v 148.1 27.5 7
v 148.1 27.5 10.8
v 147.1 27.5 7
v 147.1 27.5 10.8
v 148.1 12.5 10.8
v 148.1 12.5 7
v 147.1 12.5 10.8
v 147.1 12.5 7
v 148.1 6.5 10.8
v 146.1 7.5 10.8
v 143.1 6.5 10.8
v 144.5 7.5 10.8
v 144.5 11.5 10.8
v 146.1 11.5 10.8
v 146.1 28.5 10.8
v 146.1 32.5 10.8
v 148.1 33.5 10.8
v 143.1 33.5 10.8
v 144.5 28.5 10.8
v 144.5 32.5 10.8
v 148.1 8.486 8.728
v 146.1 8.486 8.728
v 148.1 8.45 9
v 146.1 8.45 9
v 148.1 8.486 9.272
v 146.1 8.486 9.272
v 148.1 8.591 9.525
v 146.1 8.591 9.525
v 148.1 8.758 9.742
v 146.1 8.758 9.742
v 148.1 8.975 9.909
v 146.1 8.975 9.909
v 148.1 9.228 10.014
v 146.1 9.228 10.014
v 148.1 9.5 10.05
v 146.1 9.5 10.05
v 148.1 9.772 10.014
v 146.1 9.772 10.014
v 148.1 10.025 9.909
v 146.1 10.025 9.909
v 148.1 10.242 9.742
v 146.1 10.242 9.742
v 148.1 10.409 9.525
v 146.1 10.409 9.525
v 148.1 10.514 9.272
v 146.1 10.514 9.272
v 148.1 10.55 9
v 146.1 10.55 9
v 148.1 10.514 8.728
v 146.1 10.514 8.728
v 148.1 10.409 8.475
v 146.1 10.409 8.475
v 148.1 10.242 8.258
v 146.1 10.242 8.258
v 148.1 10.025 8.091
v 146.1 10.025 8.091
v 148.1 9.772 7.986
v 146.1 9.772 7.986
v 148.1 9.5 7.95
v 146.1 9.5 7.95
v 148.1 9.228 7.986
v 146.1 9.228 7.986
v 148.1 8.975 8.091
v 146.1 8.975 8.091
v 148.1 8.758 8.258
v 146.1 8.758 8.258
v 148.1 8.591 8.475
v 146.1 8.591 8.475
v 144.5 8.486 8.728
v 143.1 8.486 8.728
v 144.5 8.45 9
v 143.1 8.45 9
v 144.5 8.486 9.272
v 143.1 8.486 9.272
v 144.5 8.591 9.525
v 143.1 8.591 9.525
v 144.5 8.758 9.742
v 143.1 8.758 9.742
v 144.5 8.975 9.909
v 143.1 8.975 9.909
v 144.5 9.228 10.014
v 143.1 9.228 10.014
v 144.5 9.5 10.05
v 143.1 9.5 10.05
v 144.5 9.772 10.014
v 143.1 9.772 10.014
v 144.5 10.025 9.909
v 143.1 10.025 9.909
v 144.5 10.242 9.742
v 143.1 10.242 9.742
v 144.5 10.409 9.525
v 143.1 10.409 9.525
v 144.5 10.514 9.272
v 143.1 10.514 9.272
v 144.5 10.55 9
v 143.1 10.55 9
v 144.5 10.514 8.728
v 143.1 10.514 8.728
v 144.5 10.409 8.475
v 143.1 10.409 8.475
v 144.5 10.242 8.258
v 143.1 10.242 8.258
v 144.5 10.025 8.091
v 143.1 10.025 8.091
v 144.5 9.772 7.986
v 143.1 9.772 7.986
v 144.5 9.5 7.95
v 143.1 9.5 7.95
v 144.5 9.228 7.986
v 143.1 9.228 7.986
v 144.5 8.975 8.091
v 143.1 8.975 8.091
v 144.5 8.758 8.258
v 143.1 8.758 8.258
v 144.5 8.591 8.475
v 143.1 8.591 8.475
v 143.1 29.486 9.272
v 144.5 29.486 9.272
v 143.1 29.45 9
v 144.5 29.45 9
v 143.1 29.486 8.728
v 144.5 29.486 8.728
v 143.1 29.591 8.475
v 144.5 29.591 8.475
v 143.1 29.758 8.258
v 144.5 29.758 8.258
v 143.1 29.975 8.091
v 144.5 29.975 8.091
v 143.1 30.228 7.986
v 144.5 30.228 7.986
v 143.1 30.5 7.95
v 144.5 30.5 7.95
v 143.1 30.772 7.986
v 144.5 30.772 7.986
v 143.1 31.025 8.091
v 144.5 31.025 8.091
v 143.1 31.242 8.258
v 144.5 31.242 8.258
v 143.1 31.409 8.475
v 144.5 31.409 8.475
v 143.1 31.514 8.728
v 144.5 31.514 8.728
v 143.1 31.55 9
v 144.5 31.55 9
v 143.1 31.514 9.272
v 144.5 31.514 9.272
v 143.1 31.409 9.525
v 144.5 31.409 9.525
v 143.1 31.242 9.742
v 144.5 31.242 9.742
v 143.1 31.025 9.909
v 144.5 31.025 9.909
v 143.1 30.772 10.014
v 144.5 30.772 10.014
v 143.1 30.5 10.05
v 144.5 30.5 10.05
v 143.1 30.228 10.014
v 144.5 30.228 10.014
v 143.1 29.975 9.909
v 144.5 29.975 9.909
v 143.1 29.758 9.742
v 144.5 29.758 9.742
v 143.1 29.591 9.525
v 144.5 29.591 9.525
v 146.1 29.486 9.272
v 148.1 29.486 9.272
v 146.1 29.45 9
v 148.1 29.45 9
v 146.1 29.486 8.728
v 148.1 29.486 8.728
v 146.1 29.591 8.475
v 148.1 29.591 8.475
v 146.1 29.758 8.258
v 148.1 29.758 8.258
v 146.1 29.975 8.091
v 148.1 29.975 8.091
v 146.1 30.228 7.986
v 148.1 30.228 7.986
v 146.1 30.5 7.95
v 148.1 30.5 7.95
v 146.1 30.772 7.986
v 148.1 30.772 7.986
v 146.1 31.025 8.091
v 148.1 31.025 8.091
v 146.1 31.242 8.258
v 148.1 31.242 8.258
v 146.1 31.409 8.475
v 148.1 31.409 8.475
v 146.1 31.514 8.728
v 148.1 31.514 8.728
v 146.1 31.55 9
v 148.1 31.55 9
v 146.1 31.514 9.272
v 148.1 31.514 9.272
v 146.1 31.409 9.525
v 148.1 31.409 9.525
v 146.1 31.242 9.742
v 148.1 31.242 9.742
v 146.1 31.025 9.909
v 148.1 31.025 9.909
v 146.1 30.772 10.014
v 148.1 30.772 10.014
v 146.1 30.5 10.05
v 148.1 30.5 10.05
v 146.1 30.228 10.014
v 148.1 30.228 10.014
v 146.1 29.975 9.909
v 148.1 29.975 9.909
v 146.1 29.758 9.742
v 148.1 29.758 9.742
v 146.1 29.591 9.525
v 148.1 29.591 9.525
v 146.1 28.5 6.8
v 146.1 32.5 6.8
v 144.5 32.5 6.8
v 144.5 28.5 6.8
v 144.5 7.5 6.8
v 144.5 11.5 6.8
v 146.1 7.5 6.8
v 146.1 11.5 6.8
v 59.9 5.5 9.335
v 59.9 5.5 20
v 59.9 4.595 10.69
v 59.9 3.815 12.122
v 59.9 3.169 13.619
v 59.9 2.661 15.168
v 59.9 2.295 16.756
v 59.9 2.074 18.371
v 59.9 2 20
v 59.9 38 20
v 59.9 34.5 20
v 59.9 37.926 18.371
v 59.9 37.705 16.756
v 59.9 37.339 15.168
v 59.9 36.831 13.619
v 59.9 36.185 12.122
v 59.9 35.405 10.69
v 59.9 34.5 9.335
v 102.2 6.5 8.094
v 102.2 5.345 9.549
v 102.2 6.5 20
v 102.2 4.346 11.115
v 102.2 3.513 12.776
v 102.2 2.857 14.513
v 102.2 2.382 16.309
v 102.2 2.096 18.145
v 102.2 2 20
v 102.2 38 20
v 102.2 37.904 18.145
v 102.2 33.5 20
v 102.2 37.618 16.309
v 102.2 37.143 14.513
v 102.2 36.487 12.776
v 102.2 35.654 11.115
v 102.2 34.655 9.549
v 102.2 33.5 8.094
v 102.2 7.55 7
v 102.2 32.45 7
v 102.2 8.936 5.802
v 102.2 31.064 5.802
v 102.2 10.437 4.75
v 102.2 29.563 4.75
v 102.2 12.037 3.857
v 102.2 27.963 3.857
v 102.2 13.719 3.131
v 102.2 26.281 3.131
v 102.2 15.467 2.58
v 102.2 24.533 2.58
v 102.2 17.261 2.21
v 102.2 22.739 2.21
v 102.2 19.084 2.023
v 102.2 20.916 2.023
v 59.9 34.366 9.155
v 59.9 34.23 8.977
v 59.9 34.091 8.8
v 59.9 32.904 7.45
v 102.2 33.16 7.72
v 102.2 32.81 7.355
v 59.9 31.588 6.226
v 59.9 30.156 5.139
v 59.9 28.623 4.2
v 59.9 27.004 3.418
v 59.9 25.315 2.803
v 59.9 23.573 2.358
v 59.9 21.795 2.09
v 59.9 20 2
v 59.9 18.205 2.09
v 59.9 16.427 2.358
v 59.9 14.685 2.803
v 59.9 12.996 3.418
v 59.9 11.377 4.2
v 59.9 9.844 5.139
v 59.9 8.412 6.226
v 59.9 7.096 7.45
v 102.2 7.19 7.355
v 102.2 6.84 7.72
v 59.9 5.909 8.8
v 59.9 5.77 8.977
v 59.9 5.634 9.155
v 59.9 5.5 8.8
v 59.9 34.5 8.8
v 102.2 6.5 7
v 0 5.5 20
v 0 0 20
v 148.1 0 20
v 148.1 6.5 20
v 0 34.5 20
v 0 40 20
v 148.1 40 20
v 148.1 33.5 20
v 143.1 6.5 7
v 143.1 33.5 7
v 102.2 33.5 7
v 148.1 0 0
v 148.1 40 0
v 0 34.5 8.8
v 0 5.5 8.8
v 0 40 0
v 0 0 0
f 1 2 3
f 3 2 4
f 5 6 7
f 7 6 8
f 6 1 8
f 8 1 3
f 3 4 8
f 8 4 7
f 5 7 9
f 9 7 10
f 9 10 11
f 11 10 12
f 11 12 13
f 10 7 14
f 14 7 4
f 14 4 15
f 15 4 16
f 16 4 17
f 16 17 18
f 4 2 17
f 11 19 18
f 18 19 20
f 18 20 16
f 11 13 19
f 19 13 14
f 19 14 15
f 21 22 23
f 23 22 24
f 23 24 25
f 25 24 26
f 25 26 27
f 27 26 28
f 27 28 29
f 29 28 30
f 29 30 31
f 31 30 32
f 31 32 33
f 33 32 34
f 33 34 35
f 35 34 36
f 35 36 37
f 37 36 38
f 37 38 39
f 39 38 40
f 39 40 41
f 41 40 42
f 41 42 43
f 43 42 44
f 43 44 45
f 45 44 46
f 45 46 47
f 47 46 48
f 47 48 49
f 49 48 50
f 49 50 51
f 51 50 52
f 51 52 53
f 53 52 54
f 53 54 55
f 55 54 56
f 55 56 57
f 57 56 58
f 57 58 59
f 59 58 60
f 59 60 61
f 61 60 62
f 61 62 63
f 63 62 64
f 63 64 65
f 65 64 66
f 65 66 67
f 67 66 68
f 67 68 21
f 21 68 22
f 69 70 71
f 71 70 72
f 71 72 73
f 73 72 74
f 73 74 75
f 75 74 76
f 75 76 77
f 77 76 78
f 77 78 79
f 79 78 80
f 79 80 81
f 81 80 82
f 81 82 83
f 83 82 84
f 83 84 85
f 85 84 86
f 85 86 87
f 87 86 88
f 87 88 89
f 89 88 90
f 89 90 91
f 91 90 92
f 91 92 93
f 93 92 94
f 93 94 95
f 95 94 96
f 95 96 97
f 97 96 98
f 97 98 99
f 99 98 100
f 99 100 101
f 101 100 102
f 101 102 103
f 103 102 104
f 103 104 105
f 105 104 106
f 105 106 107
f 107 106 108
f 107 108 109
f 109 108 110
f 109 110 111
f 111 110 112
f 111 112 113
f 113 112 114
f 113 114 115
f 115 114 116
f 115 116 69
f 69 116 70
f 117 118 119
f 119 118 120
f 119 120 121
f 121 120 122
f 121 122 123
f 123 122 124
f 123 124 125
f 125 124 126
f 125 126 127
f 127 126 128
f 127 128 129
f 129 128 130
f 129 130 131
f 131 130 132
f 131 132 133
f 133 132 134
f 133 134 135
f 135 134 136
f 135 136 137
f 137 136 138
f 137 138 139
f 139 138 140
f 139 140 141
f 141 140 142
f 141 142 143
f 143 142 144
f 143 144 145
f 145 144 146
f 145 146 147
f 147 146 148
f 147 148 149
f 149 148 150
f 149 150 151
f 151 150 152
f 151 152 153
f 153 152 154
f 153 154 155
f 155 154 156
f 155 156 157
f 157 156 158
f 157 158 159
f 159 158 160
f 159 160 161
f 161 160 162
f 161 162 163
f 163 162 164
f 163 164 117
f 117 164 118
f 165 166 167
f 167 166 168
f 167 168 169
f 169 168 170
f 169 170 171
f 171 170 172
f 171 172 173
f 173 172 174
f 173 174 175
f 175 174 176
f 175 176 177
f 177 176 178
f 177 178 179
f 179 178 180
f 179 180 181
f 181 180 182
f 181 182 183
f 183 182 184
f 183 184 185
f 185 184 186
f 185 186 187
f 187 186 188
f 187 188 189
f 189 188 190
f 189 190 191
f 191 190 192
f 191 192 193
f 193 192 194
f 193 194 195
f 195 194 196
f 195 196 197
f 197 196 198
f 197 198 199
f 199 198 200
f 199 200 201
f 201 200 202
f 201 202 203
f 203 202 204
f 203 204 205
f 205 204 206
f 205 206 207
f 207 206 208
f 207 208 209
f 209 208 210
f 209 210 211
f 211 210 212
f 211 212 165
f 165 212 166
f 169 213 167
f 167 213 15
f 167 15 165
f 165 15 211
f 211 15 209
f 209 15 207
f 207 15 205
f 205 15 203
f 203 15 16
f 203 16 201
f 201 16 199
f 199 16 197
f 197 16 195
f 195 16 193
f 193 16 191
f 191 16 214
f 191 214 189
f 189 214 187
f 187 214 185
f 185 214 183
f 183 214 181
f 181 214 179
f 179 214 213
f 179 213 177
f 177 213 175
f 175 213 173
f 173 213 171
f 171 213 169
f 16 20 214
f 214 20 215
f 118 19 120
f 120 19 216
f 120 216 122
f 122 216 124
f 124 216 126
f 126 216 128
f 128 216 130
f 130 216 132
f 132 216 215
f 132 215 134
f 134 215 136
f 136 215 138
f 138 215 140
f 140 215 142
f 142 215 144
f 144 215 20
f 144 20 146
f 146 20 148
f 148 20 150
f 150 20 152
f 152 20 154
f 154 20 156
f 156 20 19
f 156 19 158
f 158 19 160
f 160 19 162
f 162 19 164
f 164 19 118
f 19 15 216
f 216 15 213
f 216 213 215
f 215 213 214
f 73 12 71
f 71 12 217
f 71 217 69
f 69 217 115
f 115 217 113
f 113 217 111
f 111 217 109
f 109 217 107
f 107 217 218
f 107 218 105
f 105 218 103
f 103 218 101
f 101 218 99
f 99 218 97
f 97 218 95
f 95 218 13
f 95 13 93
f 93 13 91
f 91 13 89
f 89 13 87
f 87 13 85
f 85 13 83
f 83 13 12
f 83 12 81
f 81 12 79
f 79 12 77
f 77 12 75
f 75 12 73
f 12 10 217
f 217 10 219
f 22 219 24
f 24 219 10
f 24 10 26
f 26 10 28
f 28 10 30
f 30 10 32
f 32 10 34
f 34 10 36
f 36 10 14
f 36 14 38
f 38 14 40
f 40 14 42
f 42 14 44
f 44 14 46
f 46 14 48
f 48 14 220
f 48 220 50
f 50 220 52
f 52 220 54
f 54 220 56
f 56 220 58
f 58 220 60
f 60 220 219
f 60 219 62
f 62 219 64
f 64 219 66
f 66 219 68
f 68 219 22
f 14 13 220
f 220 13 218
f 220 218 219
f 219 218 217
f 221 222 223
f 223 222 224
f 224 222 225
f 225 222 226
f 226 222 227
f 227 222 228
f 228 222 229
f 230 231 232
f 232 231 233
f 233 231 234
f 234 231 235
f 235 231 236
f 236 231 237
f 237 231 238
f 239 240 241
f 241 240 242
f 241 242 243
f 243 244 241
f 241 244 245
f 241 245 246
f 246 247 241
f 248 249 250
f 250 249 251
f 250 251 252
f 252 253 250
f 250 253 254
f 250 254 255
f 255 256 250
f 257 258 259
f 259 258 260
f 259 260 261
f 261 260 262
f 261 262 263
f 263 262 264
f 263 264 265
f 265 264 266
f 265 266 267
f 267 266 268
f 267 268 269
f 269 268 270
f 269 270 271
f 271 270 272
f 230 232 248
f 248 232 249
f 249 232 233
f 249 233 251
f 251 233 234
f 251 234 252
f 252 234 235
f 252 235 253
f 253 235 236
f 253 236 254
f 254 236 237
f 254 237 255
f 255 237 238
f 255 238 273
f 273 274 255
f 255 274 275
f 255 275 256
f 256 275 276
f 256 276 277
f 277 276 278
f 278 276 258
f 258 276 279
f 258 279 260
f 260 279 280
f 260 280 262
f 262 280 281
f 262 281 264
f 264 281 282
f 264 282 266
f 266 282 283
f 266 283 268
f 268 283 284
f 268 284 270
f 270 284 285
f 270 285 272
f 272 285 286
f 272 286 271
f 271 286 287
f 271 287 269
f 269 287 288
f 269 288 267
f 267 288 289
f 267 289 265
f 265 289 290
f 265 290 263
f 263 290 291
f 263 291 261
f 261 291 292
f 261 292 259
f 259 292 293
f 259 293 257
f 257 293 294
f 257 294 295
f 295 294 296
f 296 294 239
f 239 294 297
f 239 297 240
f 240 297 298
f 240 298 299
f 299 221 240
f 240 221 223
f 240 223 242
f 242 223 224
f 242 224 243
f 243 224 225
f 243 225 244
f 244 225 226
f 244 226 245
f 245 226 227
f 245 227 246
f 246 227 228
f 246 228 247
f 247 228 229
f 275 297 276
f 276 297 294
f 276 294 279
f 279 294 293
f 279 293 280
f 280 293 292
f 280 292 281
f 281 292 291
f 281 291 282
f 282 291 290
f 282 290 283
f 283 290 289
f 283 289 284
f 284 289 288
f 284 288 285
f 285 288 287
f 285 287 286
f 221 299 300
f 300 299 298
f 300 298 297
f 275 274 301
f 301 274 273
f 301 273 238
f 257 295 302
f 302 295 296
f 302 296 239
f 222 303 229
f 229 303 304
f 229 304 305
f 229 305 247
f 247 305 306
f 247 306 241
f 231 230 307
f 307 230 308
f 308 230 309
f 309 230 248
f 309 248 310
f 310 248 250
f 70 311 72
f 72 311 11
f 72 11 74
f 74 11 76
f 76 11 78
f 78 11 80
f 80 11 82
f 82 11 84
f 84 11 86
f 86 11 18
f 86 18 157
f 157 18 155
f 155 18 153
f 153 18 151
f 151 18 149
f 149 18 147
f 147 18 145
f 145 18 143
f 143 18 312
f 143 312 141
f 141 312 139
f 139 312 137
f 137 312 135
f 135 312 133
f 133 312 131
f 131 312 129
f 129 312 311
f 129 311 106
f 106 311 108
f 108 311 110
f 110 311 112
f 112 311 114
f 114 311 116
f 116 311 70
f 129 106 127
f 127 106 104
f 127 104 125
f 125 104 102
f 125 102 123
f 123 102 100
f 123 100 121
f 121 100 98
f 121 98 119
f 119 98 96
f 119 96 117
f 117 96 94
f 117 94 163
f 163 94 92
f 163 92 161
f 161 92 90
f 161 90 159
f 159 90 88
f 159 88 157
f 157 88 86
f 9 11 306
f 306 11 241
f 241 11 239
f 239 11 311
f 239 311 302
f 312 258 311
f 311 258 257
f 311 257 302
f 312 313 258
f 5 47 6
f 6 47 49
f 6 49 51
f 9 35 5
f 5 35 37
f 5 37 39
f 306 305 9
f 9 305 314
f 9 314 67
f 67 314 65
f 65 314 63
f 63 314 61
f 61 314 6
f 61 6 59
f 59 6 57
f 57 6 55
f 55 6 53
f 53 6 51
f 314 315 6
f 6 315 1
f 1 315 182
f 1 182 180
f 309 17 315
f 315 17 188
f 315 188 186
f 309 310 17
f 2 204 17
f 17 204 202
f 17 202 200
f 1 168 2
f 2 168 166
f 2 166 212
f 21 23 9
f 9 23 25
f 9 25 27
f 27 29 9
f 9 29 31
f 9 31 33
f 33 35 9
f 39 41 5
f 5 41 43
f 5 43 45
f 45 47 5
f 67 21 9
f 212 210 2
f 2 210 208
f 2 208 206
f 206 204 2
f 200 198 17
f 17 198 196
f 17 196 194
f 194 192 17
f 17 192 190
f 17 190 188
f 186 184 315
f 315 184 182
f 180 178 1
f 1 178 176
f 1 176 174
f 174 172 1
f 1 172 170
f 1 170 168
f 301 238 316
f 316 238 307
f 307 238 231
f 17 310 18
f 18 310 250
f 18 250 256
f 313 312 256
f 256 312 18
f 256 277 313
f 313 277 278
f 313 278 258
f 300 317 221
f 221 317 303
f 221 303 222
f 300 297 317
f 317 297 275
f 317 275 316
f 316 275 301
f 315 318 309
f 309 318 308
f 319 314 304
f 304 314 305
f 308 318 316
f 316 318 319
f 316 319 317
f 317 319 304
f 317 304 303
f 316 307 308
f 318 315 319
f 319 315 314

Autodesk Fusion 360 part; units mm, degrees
sketch "スケッチ1" plane through (0, 0, 0) normal (0, 0, 1) x (1, 0, 0)
  line L0 (0, 0) -> (148.1, 0)
  line L1 (148.1, 0) -> (148.1, 40)
  line L2 (148.1, 40) -> (0, 40)
  line L3 (0, 40) -> (0, 0)
  dimension "d1" = 148.1
  dimension "d2" = 40
extrude "押し出し1" add sketch "スケッチ1" along normal blind 8.8
sketch "スケッチ2" plane through (0, 0, 8.8) normal (0, 0, 1) x (-1, 0, 0)
  line L0 (0, -40) -> (0, 0)
  line L1 (0, 0) -> (-148.1, 0)
  line L2 (-148.1, 0) -> (-148.1, -40)
  line L3 (-148.1, -40) -> (0, -40)
  line L4 (-148.1, -40) -> (-102.2, -40)
  line L5 (-102.2, -40) -> (-102.2, -33.5)
  line L6 (-102.2, -33.5) -> (-148.1, -33.5)
  line L7 (-148.1, -33.5) -> (-148.1, -40)
  line L8 (-148.1, 0) -> (-102.2, 0)
  line L9 (-102.2, 0) -> (-102.2, -6.5)
  line L10 (-102.2, -6.5) -> (-148.1, -6.5)
  line L11 (-148.1, -6.5) -> (-148.1, 0)
  line L12 (0, -40) -> (-59.9, -40)
  line L13 (-59.9, -40) -> (-59.9, -34.5)
  line L14 (-59.9, -34.5) -> (0, -34.5)
  line L15 (0, -34.5) -> (0, -40)
  line L16 (0, 0) -> (-59.9, 0)
  line L17 (-59.9, 0) -> (-59.9, -5.5)
  line L18 (-59.9, -5.5) -> (0, -5.5)
  line L19 (0, -5.5) -> (0, 0)
  line L20 (-59.9, -40) -> (-102.2, -40)
  line L21 (-102.2, -40) -> (-102.2, 0)
  line L22 (-102.2, 0) -> (-59.9, 0)
  line L23 (-59.9, 0) -> (-59.9, -40)
  dimension "d5" = 45.9
  dimension "d6" = 6.5
  dimension "d7" = 45.9
  dimension "d8" = 6.5
  dimension "d9" = 59.9
  dimension "d10" = 5.5
  dimension "d11" = 59.9
  dimension "d12" = 5.5
extrude "押し出し2" add sketch "スケッチ2" along normal blind 11.2 contours L0 L3 L12 L13 L14 L15 L23 | L1 L3 L5 L9 L13 L17 L20 L21 L22 L23 | L0 L1 L16 L17 L18 L19 L23 | L2 L3 L4 L5 L6 L7 L21 | L1 L2 L8 L9 L10 L11 L21
extrude "押し出し5" cut 1 faces at (117.5, 24.5, 8.8) along direction (0, 0, -1) blind 1.8
sketch "スケッチ4" plane through (0, 0, 7) normal (0, 0, 1) x (-1, 0, 0)
  line L0 (-102.2, -6.5) -> (-148.1, -6.5)
  line L1 (-148.1, -6.5) -> (-148.1, -33.5)
  line L2 (-148.1, -33.5) -> (-102.2, -33.5)
  line L3 (-102.2, -33.5) -> (-102.2, -6.5)
  line L4 (-148.1, -33.5) -> (-143.1, -33.5)
  line L5 (-143.1, -33.5) -> (-143.1, -6.5)
  line L6 (-143.1, -6.5) -> (-148.1, -6.5)
  line L7 (-148.1, -6.5) -> (-148.1, -33.5)
  dimension "d22" = 5
extrude "押し出し6" add sketch "スケッチ4" along normal blind 3.8 contours L0 L1 L2 L4 L5 L6 L7
sketch "スケッチ7" plane through (102.2, 0, 0) normal (1, 0, 0) x (0, 1, 0)
  line L0 (33.5, 7) -> (33.5, 20)
  line L1 (33.5, 20) -> (6.5, 20)
  line L2 (6.5, 20) -> (6.5, 7)
  line L3 (6.5, 7) -> (33.5, 7)
  circle A0 centre (20, 20) radius 18
  dimension "d28" = 36
extrude "押し出し8" cut sketch "スケッチ7" against normal blind 42.3 contours L0 L1 L2 L3 A0 | L0 L1 L2 A0 | L3 A0
sketch "スケッチ8" plane through (0, 0, 10.8) normal (0, 0, 1) x (-1, 0, 0)
  line L0 (-148.1, -6.5) -> (-148.1, -33.5)
  line L1 (-148.1, -33.5) -> (-143.1, -33.5)
  line L2 (-143.1, -33.5) -> (-143.1, -6.5)
  line L3 (-143.1, -6.5) -> (-148.1, -6.5)
  line L4 (-144.5, -32.5) -> (-146.1, -32.5)
  line L5 (-146.1, -32.5) -> (-146.1, -28.5)
  line L6 (-146.1, -28.5) -> (-144.5, -28.5)
  line L7 (-144.5, -28.5) -> (-144.5, -32.5)
  line L8 (-146.1, -7.5) -> (-144.5, -7.5)
  line L9 (-144.5, -7.5) -> (-144.5, -11.5)
  line L10 (-144.5, -11.5) -> (-146.1, -11.5)
  line L11 (-146.1, -11.5) -> (-146.1, -7.5)
  dimension "d31" = 1.6
  dimension "d32" = 4
  dimension "d33" = 1.4
  dimension "d34" = 1
  dimension "d35" = 1.6
  dimension "d36" = 4
  dimension "d37" = 1
  dimension "d38" = 1.4
extrude "押し出し9" cut sketch "スケッチ8" against normal blind 4 contours L4 L5 L6 L7 | L8 L9 L10 L11
sketch "スケッチ9" plane through (148.1, 0, 0) normal (1, 0, 0) x (0, 1, 0)
  line L0 (33.5, 20) -> (33.5, 10.8)
  line L1 (33.5, 10.8) -> (6.5, 10.8)
  line L2 (6.5, 10.8) -> (6.5, 20)
  line L3 (6.5, 20) -> (0, 20)
  line L4 (0, 20) -> (0, 0)
  line L5 (0, 0) -> (40, 0)
  line L6 (40, 0) -> (40, 20)
  line L7 (40, 20) -> (33.5, 20)
  circle A0 centre (9.5, 9) radius 1.05
  circle A1 centre (30.5, 9) radius 1.05
  point P0 (30.5, 9)
  point P1 (9.5, 9)
  dimension "d41" = 9.5
  dimension "d42" = 1.8
  dimension "d43" = 9.5
  dimension "d44" = 1.8
  dimension "d45" = 2.1
  dimension "d46" = 2.1
extrude "押し出し10" cut sketch "スケッチ9" against normal blind 5 contours A0 | A1
sketch "スケッチ10" plane through (148.1, 0, 0) normal (1, 0, 0) x (0, 1, 0)
  circle A0 centre (9.5, 9) radius 1.05
  circle A1 centre (30.5, 9) radius 1.05
  line L0 (33.5, 20) -> (33.5, 10.8)
  line L1 (33.5, 10.8) -> (6.5, 10.8)
  line L2 (6.5, 10.8) -> (6.5, 20)
  line L3 (6.5, 20) -> (0, 20)
  line L4 (0, 20) -> (0, 0)
  line L5 (0, 0) -> (40, 0)
  line L6 (40, 0) -> (40, 20)
  line L7 (40, 20) -> (33.5, 20)
  line L8 (12.5, 10.8) -> (27.5, 10.8)
  line L9 (27.5, 10.8) -> (27.5, 7)
  line L10 (27.5, 7) -> (12.5, 7)
  line L11 (12.5, 7) -> (12.5, 10.8)
  dimension "d49" = 15
  dimension "d50" = 3.8
  dimension "d51" = 12.5
extrude "押し出し11" cut sketch "スケッチ10" against normal blind 1 contours L1 L8 L9 L10 L11
